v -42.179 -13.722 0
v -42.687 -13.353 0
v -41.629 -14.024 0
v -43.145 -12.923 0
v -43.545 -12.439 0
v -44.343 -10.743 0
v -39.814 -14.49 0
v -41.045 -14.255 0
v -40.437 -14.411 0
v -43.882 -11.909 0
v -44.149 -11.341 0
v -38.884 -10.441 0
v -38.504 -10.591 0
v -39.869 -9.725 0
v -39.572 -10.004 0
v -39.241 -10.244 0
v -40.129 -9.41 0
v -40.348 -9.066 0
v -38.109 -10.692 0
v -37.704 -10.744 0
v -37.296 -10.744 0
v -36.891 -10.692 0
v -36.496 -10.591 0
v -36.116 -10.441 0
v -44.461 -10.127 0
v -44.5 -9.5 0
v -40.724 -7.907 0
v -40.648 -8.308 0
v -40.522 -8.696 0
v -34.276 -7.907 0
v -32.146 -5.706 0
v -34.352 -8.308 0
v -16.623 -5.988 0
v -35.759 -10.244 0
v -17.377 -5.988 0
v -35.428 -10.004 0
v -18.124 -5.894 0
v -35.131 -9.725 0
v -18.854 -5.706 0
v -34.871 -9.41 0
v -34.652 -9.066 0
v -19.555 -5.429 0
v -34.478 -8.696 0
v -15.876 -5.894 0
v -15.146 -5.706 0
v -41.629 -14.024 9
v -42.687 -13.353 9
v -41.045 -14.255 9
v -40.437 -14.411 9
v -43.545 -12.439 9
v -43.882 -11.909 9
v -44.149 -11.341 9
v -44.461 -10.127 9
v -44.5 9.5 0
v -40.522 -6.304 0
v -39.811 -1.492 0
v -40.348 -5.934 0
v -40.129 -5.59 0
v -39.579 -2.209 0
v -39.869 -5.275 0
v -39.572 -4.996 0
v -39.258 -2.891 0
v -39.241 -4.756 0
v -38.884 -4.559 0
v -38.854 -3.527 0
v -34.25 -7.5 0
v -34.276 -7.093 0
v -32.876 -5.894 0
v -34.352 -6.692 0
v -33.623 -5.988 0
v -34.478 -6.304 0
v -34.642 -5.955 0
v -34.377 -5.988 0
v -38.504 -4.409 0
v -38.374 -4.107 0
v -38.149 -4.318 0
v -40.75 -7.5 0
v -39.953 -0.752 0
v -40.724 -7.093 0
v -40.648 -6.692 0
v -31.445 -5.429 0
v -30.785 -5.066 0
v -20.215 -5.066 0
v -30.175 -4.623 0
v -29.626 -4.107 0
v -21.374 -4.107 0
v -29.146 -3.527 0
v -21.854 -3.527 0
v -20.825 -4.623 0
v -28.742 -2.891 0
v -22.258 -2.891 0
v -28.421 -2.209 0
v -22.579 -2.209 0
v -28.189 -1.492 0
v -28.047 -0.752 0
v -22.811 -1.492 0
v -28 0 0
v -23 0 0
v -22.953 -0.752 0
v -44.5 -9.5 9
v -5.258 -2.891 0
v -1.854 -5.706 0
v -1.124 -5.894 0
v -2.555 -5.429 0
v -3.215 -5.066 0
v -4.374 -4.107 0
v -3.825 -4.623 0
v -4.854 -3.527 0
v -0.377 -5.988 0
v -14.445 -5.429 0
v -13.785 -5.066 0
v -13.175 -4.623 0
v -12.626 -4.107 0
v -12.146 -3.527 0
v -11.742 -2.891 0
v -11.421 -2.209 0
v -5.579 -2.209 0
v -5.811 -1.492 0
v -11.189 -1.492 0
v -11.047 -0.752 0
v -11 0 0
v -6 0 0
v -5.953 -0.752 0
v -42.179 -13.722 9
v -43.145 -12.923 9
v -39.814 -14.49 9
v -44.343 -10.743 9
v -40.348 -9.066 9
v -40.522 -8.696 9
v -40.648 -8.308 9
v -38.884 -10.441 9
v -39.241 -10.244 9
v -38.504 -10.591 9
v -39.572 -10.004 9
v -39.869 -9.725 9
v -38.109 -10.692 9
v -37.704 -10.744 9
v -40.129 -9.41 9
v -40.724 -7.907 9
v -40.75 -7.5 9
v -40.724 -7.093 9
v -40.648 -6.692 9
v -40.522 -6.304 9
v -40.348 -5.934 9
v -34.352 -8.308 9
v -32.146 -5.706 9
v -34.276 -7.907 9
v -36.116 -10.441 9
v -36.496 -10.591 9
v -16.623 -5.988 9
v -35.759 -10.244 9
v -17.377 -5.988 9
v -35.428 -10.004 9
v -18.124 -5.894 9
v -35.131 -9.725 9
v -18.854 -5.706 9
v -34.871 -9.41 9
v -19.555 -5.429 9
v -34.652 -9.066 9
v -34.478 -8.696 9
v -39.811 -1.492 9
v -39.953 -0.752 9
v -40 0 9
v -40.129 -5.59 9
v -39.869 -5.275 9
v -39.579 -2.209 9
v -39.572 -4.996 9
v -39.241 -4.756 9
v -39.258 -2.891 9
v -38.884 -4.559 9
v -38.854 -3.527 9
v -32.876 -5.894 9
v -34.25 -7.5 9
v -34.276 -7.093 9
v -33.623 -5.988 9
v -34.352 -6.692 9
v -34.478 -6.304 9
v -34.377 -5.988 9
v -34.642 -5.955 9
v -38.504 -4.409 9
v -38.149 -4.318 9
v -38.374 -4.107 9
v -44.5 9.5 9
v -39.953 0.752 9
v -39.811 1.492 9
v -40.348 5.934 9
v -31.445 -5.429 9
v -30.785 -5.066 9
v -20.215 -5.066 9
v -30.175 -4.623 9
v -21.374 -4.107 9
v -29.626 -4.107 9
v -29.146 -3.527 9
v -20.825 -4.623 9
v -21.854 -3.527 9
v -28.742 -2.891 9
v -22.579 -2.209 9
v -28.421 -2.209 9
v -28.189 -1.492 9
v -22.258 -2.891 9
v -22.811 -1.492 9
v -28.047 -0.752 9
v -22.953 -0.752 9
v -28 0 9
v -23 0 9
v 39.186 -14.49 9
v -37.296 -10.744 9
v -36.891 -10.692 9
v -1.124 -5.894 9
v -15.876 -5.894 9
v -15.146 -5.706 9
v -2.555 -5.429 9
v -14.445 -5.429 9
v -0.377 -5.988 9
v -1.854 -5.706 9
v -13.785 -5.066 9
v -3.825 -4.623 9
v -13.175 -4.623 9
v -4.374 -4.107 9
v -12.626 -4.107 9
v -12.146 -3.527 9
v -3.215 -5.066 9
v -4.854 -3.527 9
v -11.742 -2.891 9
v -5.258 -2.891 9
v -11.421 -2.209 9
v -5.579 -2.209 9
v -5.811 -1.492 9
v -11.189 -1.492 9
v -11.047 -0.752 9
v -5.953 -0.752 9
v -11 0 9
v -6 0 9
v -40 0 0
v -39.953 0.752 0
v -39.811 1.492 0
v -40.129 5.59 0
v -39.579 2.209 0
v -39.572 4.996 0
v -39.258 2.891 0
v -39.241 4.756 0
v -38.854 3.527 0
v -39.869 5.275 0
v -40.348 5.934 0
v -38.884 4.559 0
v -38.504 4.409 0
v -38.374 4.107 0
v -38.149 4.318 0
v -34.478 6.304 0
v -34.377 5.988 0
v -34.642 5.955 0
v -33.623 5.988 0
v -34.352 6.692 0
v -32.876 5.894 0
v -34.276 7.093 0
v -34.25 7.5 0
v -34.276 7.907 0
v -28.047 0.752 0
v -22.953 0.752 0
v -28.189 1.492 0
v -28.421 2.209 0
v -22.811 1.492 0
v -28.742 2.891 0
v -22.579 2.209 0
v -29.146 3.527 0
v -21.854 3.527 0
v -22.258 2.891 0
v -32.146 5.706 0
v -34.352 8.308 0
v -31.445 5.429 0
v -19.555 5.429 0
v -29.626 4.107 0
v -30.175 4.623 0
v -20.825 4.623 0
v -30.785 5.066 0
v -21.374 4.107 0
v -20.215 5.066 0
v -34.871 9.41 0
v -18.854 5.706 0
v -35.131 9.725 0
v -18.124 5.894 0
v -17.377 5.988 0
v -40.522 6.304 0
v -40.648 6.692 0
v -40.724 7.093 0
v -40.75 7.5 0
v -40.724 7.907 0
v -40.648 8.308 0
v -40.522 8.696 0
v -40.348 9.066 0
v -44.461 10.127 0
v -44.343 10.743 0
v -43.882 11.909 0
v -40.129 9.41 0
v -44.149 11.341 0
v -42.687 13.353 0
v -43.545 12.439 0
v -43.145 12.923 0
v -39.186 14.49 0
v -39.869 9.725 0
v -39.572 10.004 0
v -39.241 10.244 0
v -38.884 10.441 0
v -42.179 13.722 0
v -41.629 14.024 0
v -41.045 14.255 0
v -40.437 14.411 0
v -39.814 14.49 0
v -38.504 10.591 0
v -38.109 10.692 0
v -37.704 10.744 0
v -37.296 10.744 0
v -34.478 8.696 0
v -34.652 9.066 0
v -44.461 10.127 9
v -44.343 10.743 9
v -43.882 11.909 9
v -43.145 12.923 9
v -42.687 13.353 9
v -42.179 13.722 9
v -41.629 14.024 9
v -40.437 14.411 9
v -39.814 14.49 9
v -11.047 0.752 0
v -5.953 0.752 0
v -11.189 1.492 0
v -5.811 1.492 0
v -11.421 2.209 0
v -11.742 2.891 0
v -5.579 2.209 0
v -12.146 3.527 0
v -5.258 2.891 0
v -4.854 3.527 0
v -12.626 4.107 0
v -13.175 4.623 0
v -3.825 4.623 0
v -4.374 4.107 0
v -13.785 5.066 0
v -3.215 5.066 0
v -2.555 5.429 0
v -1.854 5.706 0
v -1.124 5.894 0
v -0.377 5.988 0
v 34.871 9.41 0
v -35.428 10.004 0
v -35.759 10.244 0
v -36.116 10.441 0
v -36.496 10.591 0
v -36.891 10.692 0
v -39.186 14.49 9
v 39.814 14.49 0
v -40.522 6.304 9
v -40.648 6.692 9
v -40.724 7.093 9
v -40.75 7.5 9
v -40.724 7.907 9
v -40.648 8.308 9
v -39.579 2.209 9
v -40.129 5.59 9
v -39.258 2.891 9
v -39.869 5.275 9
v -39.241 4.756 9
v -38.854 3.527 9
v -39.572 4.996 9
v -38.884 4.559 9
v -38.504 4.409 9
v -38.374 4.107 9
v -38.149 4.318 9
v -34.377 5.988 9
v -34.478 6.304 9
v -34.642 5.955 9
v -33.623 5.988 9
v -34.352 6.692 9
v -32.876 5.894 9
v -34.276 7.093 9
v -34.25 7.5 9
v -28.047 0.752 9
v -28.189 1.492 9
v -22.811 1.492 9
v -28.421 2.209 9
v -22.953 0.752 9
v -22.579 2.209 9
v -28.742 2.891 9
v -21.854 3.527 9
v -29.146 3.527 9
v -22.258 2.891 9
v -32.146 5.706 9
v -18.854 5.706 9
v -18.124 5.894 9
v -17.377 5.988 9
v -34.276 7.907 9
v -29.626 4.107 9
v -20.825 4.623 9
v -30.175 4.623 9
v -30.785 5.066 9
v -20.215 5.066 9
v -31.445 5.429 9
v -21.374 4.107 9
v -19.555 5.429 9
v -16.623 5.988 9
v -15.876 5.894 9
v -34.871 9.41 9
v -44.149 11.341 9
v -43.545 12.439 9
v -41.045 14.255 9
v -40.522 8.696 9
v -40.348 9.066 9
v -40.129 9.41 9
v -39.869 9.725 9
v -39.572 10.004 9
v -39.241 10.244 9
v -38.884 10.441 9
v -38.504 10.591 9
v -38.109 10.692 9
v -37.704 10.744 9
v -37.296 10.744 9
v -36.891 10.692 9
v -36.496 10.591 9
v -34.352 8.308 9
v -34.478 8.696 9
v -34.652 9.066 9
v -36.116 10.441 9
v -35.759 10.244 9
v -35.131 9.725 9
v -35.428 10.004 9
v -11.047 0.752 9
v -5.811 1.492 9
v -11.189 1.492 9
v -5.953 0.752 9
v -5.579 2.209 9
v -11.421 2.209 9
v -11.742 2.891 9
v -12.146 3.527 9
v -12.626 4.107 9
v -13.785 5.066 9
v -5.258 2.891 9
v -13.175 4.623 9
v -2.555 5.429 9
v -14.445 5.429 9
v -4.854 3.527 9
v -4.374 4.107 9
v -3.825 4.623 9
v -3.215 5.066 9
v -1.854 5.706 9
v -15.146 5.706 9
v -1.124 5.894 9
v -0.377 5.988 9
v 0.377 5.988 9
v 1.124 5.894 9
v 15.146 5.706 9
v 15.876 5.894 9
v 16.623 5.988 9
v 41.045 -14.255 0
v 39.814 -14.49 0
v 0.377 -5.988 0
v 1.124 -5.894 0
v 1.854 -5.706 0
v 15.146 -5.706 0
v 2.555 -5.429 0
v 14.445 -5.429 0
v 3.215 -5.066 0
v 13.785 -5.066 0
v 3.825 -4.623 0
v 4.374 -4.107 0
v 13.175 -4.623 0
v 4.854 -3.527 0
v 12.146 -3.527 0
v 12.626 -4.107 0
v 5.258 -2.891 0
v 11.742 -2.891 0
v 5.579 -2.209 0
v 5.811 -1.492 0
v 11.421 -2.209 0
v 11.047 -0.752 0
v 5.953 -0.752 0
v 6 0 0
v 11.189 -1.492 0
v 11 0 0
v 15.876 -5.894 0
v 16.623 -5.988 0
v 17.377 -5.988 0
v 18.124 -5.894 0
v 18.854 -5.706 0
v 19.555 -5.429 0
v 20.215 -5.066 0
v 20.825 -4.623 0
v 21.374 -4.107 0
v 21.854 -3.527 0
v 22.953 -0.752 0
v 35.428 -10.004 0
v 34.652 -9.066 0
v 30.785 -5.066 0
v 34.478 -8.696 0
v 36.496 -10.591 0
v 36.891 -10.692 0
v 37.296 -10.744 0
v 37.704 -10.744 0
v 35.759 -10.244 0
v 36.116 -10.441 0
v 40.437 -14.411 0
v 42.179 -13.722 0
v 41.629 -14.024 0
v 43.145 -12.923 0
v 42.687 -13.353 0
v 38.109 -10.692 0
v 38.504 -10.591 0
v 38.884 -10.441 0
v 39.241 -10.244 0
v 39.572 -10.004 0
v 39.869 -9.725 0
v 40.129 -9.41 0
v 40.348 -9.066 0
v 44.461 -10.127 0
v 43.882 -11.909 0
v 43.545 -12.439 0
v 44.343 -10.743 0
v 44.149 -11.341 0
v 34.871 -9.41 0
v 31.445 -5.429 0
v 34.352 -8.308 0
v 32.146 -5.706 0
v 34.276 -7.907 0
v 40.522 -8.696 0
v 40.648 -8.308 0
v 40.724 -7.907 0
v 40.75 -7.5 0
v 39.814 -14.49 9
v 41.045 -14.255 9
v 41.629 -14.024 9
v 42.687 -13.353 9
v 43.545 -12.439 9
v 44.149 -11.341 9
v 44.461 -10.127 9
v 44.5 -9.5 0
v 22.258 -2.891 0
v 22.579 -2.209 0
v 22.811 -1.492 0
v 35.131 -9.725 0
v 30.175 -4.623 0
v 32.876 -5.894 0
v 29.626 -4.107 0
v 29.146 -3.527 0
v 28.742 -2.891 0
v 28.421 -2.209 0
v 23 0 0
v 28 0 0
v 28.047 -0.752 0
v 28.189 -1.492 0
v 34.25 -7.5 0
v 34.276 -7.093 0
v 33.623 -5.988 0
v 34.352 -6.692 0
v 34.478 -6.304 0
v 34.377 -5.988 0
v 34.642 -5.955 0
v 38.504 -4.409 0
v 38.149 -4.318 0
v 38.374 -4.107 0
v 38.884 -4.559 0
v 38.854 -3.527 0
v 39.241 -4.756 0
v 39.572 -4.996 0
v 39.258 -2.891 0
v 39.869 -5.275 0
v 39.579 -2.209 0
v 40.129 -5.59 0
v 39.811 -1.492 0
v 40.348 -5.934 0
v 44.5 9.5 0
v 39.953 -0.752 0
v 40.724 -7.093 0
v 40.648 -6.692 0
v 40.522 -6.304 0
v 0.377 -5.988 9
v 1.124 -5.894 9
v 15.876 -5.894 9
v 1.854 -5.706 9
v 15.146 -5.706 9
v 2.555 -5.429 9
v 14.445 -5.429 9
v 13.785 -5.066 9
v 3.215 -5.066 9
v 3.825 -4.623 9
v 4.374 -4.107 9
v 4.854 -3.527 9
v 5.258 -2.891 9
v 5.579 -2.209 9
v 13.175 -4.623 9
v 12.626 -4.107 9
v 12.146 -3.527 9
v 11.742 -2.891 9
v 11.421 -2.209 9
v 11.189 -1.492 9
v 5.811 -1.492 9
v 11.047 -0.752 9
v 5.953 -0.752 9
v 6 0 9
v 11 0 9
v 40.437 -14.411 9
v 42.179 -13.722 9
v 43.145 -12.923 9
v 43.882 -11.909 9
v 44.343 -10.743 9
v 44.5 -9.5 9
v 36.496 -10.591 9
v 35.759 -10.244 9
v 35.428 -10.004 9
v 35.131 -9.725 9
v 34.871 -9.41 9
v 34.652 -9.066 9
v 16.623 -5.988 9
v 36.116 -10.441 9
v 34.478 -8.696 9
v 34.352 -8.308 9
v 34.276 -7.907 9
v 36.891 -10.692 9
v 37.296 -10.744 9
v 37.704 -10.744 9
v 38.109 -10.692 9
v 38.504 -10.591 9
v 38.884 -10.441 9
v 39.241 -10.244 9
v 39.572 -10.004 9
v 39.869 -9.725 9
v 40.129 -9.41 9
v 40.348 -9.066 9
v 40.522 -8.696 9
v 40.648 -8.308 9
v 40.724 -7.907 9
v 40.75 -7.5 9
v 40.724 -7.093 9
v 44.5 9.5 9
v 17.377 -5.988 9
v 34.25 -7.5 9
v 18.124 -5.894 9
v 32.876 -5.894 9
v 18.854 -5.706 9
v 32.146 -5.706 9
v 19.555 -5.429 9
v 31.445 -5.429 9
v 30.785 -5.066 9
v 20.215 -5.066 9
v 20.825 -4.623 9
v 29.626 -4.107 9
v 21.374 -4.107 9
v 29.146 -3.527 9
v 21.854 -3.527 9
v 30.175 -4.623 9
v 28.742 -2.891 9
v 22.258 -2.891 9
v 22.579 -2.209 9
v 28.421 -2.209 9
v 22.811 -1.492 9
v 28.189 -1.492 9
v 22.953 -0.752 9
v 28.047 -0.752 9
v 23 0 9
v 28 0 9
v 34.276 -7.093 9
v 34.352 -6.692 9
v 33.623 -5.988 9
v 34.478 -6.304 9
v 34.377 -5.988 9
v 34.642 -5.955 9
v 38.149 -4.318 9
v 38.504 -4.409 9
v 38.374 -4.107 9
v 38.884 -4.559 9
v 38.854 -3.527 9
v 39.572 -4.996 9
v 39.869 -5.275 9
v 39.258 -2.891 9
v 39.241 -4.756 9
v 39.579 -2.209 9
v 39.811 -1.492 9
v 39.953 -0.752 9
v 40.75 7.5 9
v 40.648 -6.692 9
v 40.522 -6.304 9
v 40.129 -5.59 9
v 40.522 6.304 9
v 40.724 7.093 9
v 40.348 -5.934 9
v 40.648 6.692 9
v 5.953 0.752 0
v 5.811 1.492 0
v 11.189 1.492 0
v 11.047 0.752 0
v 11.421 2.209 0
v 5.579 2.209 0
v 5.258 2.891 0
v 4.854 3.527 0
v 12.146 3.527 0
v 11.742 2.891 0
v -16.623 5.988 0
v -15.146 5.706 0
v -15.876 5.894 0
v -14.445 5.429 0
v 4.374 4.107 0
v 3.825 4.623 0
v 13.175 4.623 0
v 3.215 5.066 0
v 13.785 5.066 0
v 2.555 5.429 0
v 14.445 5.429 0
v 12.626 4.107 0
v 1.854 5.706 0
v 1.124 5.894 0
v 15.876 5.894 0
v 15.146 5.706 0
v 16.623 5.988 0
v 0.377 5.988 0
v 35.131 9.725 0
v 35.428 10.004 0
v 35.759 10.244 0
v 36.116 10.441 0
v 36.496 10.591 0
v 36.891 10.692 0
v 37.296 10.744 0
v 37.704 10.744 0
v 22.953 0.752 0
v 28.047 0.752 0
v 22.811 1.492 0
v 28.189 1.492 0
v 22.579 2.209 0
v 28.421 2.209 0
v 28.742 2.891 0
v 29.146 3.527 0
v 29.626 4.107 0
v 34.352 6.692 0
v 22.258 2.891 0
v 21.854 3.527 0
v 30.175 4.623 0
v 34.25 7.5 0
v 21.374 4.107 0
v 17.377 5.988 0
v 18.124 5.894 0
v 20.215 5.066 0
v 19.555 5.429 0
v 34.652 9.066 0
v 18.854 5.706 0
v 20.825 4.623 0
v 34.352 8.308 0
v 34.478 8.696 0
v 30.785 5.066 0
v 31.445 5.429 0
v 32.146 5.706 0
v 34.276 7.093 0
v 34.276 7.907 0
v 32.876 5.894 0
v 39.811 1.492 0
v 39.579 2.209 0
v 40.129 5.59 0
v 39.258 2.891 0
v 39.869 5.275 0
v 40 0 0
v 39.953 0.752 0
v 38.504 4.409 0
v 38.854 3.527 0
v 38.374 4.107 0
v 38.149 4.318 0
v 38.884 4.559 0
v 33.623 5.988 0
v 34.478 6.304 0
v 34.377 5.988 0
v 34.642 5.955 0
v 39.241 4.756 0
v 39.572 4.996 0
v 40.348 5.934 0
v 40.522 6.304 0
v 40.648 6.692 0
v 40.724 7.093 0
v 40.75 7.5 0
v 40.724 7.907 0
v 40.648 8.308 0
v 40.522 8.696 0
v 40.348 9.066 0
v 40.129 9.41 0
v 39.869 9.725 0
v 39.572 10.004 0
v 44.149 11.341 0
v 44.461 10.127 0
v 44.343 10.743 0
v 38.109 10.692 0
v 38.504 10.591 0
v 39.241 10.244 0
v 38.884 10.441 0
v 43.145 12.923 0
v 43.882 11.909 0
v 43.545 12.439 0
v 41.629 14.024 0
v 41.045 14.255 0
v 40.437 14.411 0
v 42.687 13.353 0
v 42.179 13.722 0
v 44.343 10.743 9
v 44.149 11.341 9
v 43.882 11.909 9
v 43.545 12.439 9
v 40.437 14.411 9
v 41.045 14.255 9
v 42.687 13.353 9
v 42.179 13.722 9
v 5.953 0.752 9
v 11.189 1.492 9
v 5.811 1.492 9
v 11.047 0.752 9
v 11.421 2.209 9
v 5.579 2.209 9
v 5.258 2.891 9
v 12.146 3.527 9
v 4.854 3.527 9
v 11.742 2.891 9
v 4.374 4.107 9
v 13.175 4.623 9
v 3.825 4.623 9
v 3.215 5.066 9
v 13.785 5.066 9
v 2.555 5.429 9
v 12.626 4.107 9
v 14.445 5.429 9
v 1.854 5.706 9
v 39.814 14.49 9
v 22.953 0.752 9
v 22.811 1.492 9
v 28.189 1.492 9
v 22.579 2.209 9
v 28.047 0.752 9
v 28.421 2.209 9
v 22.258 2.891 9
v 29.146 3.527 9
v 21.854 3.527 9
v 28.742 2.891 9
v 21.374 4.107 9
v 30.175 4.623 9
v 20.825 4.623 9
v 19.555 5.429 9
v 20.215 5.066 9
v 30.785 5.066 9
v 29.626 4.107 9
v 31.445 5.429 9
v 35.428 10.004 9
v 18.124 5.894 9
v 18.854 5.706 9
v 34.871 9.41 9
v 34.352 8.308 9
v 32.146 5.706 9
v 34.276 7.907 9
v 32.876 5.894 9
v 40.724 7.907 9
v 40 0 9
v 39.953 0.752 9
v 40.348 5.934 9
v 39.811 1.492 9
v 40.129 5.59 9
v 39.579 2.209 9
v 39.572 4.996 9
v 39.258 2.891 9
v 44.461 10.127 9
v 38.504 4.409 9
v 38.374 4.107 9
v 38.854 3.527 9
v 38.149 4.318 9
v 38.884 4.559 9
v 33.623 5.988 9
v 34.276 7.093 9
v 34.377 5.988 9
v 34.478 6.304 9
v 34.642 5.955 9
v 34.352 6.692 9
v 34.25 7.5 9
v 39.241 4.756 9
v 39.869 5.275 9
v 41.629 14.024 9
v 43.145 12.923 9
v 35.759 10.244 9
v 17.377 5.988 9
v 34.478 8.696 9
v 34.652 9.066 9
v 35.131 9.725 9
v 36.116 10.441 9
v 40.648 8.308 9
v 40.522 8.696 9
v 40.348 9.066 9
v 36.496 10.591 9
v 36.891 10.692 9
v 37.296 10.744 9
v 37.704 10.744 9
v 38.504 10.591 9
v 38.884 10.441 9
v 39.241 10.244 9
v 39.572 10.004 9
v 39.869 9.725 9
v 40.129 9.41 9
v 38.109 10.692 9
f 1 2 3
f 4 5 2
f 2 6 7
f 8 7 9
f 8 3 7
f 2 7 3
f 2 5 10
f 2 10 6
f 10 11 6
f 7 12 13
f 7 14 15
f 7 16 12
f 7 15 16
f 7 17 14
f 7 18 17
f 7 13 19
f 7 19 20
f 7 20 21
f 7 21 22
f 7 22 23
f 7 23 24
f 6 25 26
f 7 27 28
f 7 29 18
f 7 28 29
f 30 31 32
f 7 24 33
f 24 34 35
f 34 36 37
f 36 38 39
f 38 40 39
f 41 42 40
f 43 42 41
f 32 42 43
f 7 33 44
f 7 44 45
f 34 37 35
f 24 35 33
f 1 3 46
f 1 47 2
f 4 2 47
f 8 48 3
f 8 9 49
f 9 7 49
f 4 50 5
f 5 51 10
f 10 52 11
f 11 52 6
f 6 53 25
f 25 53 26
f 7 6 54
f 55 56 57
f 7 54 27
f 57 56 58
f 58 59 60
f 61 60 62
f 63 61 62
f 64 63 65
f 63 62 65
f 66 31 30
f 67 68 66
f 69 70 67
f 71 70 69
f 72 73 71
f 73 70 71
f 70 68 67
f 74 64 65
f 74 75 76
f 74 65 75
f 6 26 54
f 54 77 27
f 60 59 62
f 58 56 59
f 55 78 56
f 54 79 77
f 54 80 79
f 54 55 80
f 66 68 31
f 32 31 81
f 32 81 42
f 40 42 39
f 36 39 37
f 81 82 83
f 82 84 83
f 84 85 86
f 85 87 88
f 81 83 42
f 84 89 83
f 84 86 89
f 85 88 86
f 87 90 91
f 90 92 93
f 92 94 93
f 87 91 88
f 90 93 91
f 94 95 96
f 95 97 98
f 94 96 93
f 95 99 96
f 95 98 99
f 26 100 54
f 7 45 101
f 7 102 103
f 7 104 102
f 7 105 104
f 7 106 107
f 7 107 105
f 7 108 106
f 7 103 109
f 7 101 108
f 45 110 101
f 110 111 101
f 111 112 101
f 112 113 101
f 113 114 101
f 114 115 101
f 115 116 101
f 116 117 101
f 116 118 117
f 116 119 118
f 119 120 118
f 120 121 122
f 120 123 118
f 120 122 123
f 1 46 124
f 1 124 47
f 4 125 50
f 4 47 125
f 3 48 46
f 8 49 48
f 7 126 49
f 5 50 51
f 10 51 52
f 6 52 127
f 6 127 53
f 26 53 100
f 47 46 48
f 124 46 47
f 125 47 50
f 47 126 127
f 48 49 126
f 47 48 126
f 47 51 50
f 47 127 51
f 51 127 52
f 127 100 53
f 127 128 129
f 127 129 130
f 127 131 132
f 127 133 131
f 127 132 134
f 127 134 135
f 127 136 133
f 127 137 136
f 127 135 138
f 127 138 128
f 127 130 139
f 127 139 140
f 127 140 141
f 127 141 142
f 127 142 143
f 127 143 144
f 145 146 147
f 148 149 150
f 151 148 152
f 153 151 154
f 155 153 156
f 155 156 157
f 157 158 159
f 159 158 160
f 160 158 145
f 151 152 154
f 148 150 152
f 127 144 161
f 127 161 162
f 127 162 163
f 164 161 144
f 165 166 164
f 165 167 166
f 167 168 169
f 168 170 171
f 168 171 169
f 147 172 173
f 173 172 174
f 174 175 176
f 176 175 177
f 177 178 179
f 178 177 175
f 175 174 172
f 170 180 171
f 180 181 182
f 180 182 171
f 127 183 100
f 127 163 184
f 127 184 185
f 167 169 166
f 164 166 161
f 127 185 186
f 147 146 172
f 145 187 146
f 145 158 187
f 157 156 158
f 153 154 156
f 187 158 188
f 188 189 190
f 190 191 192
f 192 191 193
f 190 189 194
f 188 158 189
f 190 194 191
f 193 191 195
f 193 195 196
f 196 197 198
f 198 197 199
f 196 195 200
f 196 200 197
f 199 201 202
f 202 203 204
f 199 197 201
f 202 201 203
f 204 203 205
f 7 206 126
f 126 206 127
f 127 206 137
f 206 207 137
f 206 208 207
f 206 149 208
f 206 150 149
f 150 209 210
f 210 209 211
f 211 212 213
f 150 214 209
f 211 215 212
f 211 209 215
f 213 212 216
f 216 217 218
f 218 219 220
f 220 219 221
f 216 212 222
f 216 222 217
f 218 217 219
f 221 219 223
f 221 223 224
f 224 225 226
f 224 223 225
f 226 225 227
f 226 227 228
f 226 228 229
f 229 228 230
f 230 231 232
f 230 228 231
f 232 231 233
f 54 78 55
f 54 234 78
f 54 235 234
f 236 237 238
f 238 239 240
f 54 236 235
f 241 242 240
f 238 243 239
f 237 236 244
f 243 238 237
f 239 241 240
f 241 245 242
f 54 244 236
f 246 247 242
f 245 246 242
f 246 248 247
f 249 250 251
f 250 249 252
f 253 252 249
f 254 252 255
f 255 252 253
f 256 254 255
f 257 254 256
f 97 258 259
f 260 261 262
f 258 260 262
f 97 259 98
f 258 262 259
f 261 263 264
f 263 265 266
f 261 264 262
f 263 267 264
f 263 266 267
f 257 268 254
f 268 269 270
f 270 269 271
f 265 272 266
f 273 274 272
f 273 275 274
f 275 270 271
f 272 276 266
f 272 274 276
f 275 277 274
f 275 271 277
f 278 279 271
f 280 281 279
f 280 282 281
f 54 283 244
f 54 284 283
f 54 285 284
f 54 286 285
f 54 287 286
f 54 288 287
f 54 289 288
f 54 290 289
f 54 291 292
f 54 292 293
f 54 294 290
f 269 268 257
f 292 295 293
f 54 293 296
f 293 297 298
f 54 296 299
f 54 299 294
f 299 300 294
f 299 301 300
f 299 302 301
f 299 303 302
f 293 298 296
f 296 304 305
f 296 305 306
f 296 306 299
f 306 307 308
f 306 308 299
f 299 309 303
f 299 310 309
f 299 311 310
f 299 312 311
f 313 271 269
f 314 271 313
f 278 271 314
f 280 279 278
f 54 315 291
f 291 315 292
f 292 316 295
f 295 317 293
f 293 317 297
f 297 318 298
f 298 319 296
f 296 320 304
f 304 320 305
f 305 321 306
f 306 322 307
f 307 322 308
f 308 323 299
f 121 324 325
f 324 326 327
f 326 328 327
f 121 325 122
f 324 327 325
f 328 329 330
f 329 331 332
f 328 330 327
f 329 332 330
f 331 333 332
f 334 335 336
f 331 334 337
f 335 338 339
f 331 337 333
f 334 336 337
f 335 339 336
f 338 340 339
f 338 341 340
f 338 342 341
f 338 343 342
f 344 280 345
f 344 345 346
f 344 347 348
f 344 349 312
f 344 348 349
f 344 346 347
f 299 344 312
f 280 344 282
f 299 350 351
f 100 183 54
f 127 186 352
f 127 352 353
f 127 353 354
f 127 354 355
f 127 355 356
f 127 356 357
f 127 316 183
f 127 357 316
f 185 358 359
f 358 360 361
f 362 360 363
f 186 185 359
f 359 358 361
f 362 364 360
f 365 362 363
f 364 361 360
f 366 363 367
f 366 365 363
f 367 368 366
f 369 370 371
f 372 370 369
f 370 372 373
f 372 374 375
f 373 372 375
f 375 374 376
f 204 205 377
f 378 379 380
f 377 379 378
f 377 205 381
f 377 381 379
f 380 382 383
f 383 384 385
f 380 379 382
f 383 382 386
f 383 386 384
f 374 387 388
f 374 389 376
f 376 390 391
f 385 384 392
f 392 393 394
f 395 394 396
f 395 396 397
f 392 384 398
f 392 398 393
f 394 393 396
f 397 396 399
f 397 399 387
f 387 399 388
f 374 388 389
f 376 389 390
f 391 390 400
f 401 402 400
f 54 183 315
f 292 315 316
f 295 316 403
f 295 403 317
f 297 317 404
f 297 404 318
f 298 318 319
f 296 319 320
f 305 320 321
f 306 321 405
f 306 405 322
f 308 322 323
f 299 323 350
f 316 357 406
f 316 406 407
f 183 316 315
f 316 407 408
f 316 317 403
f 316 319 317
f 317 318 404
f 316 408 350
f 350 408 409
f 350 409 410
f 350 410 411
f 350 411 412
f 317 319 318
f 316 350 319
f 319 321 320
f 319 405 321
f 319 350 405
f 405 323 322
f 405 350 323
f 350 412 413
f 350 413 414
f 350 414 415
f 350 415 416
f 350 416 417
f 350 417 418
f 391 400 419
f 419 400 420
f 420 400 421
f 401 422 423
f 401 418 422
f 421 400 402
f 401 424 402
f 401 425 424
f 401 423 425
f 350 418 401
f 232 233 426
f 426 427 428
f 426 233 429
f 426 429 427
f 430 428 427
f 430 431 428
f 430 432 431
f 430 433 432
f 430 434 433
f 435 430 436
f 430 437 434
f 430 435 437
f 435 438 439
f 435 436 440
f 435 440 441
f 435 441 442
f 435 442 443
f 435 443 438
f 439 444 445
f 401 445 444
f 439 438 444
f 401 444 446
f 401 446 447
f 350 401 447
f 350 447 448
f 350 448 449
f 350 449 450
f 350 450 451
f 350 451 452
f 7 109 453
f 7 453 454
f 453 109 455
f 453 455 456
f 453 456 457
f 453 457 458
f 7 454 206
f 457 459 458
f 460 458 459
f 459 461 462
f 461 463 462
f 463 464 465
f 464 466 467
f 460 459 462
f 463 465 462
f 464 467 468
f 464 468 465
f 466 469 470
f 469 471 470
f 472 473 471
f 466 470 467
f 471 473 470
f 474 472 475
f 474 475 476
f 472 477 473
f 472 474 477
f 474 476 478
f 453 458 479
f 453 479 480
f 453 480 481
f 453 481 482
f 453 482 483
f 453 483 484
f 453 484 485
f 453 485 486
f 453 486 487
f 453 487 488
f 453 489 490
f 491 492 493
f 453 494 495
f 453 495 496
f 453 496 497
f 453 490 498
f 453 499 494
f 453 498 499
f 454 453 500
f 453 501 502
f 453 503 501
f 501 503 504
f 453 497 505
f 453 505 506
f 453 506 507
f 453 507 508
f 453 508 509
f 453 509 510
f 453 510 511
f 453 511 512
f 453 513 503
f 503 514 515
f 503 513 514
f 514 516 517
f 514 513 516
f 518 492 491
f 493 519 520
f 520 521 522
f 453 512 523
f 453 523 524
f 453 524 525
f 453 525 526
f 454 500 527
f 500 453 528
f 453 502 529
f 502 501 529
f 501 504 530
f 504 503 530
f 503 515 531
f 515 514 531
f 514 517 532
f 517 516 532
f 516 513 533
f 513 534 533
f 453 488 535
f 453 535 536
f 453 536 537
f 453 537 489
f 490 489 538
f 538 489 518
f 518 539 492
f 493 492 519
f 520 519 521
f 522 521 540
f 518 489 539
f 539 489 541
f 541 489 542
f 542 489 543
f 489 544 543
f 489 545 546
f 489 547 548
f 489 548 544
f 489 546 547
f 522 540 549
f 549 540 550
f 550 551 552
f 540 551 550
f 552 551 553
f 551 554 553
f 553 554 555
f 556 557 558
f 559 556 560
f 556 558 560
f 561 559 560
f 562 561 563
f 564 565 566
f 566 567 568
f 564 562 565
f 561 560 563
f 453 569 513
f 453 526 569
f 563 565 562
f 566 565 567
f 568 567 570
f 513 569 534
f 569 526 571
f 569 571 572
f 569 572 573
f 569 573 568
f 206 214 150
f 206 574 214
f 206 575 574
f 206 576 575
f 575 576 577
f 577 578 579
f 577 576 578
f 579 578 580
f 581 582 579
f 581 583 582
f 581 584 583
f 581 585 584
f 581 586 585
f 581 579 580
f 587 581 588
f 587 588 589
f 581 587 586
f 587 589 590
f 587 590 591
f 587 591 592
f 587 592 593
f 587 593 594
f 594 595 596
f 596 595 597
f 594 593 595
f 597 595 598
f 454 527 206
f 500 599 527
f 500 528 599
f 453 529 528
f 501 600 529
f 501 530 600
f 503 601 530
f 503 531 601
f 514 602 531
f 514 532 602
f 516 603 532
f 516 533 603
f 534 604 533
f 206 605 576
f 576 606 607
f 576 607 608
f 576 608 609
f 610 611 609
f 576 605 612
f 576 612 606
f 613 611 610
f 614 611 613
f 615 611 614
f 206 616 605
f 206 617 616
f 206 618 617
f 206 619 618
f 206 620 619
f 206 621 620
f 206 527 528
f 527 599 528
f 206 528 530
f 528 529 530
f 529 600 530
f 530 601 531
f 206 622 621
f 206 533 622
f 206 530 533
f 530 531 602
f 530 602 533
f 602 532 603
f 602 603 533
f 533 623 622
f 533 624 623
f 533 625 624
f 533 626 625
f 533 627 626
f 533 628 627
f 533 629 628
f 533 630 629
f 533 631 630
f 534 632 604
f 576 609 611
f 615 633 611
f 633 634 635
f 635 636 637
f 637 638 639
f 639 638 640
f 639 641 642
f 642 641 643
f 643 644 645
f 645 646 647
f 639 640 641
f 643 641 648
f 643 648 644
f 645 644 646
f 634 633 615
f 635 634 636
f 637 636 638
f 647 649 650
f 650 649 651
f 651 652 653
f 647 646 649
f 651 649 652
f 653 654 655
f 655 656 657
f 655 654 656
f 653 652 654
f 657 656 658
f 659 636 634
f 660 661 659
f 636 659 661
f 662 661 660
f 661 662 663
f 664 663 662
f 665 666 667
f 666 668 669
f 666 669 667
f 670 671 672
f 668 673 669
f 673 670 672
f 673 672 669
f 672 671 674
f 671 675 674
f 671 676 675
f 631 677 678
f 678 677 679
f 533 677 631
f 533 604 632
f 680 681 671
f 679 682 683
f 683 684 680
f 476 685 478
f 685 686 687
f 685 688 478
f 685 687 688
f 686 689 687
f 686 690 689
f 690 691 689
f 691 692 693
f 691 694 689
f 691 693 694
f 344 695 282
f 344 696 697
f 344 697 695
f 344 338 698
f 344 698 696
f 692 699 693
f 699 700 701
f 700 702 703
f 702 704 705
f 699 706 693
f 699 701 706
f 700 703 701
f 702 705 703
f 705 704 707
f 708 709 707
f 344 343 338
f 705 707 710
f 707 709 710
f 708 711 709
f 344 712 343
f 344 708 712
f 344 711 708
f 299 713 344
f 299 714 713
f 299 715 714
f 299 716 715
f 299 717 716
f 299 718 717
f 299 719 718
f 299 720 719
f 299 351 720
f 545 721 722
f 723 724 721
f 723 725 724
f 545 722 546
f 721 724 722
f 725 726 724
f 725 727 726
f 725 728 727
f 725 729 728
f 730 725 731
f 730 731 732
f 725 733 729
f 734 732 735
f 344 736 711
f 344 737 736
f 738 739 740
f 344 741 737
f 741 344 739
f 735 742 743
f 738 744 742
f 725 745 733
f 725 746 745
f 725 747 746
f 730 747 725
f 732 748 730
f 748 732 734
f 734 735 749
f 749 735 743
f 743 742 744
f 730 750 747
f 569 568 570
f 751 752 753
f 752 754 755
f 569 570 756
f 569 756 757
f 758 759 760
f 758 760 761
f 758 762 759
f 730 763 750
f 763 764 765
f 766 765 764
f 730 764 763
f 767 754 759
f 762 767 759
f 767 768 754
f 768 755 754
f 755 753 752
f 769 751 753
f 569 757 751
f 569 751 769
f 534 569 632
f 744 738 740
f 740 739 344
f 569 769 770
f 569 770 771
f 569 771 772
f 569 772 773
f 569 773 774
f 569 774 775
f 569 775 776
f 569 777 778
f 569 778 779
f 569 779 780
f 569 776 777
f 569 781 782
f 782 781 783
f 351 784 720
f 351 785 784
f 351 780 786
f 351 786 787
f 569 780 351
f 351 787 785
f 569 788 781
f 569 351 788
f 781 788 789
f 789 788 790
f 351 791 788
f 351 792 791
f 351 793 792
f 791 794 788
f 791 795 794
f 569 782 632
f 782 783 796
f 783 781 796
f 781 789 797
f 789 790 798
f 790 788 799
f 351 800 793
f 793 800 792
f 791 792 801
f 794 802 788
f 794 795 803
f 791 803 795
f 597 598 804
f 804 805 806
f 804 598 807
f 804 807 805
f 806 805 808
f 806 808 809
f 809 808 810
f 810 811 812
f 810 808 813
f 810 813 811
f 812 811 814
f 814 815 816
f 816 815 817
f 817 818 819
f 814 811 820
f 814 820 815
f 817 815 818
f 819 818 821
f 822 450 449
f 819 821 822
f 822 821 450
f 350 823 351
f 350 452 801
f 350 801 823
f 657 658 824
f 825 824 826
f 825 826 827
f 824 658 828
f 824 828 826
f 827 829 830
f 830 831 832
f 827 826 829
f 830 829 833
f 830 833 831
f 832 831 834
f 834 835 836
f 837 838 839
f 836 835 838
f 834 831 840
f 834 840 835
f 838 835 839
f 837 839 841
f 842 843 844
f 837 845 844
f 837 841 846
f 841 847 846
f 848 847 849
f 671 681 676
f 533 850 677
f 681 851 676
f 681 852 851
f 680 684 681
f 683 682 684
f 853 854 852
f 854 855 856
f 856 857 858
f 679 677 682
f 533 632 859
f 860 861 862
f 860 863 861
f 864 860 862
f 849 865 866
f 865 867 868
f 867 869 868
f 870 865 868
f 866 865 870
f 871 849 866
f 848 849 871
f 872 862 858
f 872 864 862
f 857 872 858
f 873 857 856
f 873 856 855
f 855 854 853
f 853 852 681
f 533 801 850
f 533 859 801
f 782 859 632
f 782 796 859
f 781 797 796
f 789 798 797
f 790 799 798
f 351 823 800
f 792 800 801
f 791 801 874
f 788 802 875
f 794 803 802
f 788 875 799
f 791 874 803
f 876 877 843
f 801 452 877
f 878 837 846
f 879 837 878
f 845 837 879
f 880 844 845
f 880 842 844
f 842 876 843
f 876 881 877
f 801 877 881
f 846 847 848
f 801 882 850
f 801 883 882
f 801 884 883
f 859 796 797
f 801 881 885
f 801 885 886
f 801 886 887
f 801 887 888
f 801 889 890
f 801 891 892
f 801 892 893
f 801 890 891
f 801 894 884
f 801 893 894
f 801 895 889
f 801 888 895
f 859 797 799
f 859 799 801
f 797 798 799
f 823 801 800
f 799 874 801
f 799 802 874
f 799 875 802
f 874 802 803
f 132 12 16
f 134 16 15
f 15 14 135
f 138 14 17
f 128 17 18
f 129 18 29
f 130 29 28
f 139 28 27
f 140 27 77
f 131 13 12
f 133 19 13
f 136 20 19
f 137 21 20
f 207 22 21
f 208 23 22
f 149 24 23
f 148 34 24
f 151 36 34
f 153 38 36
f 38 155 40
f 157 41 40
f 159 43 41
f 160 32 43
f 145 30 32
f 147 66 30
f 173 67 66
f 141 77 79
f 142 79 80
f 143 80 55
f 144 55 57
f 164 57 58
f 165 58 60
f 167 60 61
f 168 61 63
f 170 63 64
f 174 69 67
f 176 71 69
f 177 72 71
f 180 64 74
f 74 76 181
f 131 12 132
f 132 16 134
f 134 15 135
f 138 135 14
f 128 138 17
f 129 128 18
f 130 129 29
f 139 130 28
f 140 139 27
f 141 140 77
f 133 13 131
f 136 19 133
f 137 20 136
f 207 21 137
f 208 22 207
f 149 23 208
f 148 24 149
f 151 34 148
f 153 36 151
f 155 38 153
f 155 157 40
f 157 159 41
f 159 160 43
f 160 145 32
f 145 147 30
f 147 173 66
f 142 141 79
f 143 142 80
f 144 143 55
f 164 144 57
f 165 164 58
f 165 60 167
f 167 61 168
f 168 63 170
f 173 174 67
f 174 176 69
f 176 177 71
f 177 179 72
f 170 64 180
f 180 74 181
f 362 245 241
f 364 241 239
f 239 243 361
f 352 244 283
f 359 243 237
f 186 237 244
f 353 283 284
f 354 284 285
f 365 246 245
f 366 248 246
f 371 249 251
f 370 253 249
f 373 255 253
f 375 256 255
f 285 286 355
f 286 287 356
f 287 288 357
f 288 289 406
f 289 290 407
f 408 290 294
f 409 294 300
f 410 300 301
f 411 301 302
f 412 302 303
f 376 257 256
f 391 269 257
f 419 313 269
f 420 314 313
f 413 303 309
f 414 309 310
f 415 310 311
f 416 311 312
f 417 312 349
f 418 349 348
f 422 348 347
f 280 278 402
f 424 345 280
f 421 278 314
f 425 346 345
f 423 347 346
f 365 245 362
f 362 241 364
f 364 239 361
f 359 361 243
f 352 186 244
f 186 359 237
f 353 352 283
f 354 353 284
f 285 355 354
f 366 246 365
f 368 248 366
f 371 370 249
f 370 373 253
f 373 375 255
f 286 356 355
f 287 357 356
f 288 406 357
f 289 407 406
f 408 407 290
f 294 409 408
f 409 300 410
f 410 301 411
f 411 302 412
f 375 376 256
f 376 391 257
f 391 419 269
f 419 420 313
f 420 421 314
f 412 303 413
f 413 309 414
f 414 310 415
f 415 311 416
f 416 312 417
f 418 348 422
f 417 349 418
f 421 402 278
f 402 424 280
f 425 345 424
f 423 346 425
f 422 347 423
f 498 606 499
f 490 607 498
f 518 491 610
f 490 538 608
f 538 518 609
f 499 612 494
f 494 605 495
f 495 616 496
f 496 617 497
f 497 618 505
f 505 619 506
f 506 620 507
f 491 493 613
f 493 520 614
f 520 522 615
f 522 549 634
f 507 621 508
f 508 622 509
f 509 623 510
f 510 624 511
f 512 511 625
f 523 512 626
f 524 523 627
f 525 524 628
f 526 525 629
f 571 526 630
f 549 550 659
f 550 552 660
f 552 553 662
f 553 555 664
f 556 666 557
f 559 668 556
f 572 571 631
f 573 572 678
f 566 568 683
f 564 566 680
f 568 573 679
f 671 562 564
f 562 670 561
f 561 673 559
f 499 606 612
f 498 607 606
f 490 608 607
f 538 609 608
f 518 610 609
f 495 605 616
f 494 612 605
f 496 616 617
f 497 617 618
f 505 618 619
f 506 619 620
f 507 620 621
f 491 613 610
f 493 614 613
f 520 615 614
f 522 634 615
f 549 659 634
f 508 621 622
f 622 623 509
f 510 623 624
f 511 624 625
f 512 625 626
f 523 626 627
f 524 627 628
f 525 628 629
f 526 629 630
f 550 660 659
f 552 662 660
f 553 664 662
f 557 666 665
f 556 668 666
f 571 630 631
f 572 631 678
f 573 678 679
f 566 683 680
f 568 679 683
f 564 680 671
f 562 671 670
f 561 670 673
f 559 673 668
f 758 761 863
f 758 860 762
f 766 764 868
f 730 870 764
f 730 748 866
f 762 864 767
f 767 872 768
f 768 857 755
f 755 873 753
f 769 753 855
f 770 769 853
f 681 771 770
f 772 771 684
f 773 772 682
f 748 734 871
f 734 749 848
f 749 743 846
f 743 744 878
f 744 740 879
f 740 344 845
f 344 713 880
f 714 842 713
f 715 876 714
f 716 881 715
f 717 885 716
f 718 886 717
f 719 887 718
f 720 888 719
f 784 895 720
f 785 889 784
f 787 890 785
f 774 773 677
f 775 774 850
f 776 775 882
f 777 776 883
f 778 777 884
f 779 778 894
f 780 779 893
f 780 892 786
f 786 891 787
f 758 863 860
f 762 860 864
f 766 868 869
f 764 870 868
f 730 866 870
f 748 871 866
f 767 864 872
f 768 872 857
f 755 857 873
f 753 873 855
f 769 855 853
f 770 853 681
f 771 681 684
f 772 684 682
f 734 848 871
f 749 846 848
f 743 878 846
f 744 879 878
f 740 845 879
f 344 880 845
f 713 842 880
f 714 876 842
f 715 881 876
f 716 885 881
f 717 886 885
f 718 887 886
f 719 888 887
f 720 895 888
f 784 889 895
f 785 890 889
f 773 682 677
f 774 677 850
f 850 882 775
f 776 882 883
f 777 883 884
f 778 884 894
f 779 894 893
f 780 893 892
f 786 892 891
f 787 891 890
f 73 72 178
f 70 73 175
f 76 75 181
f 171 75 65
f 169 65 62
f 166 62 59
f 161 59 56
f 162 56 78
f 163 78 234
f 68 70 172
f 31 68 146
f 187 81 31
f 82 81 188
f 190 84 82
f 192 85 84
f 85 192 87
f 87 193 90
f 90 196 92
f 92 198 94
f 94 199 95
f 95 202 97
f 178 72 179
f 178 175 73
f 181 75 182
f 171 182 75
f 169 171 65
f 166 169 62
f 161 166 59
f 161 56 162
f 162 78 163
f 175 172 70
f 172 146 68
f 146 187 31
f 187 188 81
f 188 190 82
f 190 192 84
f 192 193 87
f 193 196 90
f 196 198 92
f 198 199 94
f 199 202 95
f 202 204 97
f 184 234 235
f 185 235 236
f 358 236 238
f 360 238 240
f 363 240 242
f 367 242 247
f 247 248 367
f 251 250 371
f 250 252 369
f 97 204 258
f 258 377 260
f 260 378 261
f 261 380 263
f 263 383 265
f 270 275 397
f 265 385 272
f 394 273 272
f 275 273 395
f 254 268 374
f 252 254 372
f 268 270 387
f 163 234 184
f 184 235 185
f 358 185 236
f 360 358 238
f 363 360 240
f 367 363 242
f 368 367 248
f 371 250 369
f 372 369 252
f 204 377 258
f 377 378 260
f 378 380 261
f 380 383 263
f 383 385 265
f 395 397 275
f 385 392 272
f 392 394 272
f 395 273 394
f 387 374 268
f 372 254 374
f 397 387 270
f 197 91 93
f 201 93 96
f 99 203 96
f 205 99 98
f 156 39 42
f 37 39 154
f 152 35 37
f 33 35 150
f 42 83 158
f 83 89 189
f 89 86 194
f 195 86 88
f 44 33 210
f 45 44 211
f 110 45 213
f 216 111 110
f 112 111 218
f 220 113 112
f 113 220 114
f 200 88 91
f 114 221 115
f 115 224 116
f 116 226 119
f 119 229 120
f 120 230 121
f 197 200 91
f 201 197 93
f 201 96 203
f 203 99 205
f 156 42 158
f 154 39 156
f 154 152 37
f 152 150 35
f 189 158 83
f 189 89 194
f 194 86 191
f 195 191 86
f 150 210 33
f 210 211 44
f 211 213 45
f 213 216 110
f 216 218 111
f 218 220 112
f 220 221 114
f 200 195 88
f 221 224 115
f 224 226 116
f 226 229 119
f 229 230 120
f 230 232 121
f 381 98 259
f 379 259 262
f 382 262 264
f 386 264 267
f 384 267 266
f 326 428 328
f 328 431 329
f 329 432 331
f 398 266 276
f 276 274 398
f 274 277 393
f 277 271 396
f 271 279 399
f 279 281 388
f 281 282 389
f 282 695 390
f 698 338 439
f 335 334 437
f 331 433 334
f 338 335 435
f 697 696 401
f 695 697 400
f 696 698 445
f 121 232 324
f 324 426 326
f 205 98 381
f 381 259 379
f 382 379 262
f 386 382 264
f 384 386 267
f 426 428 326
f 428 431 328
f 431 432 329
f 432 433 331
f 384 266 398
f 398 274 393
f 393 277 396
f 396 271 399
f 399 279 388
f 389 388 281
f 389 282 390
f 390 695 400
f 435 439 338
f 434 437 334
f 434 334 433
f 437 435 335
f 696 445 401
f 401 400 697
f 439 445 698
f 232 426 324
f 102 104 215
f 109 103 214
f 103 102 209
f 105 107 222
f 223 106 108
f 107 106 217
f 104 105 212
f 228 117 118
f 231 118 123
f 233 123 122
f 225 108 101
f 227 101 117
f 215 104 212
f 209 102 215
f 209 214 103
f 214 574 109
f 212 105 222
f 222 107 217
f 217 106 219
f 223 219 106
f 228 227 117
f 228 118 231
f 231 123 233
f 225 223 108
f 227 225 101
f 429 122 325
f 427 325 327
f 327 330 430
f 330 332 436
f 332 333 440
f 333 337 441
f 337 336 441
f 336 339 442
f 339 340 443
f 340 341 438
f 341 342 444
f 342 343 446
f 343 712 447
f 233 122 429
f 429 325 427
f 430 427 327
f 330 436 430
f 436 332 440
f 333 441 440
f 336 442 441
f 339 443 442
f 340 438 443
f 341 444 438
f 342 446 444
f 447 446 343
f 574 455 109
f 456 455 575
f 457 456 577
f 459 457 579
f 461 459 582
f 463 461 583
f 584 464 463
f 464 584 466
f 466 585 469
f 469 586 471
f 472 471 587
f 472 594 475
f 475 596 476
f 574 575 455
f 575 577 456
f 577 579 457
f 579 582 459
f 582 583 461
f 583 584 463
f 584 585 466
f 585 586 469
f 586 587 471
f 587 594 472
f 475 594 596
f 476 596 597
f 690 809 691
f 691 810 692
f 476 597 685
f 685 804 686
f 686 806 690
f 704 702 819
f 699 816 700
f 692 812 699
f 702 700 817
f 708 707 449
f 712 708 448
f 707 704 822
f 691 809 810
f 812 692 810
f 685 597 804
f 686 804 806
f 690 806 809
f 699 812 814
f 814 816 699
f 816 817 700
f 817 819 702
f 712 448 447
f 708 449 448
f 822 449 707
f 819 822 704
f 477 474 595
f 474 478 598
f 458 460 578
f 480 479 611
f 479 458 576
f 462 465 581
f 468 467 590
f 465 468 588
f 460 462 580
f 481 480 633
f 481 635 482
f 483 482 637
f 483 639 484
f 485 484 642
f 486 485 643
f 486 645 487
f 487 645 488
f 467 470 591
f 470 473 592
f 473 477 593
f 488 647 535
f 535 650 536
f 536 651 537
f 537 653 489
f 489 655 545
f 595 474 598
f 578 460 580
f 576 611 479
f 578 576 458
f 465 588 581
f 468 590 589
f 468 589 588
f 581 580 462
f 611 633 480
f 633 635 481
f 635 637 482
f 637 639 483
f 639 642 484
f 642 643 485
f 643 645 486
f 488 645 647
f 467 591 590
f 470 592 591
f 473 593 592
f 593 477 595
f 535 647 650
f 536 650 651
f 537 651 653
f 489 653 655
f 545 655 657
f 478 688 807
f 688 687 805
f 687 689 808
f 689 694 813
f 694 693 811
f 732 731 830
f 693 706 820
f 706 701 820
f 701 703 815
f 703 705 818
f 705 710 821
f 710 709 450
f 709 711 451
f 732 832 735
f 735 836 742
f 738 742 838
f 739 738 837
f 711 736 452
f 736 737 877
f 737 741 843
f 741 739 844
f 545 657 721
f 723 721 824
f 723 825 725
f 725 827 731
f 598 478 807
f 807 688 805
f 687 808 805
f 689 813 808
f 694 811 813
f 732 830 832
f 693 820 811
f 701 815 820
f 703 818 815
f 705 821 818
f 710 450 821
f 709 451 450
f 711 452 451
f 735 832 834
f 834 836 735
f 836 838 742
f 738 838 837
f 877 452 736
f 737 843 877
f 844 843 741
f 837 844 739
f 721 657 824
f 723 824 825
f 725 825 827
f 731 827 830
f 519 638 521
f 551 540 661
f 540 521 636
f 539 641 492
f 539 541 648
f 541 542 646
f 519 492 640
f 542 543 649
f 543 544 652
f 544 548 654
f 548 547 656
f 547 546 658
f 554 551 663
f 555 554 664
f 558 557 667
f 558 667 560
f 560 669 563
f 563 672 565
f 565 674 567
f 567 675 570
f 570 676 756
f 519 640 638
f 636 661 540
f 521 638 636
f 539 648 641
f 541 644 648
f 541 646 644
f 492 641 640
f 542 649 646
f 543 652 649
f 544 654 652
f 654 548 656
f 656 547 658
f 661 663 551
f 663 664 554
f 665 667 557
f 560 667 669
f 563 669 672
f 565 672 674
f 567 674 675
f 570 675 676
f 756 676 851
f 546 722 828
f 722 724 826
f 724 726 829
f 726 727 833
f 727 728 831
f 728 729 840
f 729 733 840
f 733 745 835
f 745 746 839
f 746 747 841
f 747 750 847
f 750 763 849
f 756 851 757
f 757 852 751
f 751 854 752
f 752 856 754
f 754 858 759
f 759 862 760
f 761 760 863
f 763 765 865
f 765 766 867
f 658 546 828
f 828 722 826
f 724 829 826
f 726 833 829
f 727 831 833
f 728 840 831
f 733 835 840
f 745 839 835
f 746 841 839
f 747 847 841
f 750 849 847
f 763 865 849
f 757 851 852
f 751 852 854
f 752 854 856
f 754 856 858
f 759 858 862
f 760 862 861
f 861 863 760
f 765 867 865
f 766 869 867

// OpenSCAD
$fn = 50;

difference() {
	union() {
		hull() {
			translate(v = [-39.5, 9.5, 0]) {
				cylinder(h = 9, r = 5);
			}
			translate(v = [39.5, 9.5, 0]) {
				cylinder(h = 9, r = 5);
			}
			translate(v = [-39.5, -9.5, 0]) {
				cylinder(h = 9, r = 5);
			}
			translate(v = [39.5, -9.5, 0]) {
				cylinder(h = 9, r = 5);
			}
		}
	}
	union() {
		translate(v = [-37.5, -7.5, -100.0]) {
			cylinder(h = 200, r = 3.25);
		}
		translate(v = [-37.5, 7.5, -100.0]) {
			cylinder(h = 200, r = 3.25);
		}
		translate(v = [37.5, -7.5, -100.0]) {
			cylinder(h = 200, r = 3.25);
		}
		translate(v = [37.5, 7.5, -100.0]) {
			cylinder(h = 200, r = 3.25);
		}
		translate(v = [-37.5, -7.5, -100.0]) {
			cylinder(h = 200, r = 1.8);
		}
		translate(v = [-37.5, 7.5, -100.0]) {
			cylinder(h = 200, r = 1.8);
		}
		translate(v = [37.5, -7.5, -100.0]) {
			cylinder(h = 200, r = 1.8);
		}
		translate(v = [37.5, 7.5, -100.0]) {
			cylinder(h = 200, r = 1.8);
		}
		translate(v = [-34.0, 0, 0.0]) {
			cylinder(h = 9, r = 6.0);
		}
		translate(v = [-17.0, 0, 0.0]) {
			cylinder(h = 9, r = 6.0);
		}
		cylinder(h = 9, r = 6.0);
		translate(v = [17.0, 0, 0.0]) {
			cylinder(h = 9, r = 6.0);
		}
		translate(v = [34.0, 0, 0.0]) {
			cylinder(h = 9, r = 6.0);
		}
	}
}
